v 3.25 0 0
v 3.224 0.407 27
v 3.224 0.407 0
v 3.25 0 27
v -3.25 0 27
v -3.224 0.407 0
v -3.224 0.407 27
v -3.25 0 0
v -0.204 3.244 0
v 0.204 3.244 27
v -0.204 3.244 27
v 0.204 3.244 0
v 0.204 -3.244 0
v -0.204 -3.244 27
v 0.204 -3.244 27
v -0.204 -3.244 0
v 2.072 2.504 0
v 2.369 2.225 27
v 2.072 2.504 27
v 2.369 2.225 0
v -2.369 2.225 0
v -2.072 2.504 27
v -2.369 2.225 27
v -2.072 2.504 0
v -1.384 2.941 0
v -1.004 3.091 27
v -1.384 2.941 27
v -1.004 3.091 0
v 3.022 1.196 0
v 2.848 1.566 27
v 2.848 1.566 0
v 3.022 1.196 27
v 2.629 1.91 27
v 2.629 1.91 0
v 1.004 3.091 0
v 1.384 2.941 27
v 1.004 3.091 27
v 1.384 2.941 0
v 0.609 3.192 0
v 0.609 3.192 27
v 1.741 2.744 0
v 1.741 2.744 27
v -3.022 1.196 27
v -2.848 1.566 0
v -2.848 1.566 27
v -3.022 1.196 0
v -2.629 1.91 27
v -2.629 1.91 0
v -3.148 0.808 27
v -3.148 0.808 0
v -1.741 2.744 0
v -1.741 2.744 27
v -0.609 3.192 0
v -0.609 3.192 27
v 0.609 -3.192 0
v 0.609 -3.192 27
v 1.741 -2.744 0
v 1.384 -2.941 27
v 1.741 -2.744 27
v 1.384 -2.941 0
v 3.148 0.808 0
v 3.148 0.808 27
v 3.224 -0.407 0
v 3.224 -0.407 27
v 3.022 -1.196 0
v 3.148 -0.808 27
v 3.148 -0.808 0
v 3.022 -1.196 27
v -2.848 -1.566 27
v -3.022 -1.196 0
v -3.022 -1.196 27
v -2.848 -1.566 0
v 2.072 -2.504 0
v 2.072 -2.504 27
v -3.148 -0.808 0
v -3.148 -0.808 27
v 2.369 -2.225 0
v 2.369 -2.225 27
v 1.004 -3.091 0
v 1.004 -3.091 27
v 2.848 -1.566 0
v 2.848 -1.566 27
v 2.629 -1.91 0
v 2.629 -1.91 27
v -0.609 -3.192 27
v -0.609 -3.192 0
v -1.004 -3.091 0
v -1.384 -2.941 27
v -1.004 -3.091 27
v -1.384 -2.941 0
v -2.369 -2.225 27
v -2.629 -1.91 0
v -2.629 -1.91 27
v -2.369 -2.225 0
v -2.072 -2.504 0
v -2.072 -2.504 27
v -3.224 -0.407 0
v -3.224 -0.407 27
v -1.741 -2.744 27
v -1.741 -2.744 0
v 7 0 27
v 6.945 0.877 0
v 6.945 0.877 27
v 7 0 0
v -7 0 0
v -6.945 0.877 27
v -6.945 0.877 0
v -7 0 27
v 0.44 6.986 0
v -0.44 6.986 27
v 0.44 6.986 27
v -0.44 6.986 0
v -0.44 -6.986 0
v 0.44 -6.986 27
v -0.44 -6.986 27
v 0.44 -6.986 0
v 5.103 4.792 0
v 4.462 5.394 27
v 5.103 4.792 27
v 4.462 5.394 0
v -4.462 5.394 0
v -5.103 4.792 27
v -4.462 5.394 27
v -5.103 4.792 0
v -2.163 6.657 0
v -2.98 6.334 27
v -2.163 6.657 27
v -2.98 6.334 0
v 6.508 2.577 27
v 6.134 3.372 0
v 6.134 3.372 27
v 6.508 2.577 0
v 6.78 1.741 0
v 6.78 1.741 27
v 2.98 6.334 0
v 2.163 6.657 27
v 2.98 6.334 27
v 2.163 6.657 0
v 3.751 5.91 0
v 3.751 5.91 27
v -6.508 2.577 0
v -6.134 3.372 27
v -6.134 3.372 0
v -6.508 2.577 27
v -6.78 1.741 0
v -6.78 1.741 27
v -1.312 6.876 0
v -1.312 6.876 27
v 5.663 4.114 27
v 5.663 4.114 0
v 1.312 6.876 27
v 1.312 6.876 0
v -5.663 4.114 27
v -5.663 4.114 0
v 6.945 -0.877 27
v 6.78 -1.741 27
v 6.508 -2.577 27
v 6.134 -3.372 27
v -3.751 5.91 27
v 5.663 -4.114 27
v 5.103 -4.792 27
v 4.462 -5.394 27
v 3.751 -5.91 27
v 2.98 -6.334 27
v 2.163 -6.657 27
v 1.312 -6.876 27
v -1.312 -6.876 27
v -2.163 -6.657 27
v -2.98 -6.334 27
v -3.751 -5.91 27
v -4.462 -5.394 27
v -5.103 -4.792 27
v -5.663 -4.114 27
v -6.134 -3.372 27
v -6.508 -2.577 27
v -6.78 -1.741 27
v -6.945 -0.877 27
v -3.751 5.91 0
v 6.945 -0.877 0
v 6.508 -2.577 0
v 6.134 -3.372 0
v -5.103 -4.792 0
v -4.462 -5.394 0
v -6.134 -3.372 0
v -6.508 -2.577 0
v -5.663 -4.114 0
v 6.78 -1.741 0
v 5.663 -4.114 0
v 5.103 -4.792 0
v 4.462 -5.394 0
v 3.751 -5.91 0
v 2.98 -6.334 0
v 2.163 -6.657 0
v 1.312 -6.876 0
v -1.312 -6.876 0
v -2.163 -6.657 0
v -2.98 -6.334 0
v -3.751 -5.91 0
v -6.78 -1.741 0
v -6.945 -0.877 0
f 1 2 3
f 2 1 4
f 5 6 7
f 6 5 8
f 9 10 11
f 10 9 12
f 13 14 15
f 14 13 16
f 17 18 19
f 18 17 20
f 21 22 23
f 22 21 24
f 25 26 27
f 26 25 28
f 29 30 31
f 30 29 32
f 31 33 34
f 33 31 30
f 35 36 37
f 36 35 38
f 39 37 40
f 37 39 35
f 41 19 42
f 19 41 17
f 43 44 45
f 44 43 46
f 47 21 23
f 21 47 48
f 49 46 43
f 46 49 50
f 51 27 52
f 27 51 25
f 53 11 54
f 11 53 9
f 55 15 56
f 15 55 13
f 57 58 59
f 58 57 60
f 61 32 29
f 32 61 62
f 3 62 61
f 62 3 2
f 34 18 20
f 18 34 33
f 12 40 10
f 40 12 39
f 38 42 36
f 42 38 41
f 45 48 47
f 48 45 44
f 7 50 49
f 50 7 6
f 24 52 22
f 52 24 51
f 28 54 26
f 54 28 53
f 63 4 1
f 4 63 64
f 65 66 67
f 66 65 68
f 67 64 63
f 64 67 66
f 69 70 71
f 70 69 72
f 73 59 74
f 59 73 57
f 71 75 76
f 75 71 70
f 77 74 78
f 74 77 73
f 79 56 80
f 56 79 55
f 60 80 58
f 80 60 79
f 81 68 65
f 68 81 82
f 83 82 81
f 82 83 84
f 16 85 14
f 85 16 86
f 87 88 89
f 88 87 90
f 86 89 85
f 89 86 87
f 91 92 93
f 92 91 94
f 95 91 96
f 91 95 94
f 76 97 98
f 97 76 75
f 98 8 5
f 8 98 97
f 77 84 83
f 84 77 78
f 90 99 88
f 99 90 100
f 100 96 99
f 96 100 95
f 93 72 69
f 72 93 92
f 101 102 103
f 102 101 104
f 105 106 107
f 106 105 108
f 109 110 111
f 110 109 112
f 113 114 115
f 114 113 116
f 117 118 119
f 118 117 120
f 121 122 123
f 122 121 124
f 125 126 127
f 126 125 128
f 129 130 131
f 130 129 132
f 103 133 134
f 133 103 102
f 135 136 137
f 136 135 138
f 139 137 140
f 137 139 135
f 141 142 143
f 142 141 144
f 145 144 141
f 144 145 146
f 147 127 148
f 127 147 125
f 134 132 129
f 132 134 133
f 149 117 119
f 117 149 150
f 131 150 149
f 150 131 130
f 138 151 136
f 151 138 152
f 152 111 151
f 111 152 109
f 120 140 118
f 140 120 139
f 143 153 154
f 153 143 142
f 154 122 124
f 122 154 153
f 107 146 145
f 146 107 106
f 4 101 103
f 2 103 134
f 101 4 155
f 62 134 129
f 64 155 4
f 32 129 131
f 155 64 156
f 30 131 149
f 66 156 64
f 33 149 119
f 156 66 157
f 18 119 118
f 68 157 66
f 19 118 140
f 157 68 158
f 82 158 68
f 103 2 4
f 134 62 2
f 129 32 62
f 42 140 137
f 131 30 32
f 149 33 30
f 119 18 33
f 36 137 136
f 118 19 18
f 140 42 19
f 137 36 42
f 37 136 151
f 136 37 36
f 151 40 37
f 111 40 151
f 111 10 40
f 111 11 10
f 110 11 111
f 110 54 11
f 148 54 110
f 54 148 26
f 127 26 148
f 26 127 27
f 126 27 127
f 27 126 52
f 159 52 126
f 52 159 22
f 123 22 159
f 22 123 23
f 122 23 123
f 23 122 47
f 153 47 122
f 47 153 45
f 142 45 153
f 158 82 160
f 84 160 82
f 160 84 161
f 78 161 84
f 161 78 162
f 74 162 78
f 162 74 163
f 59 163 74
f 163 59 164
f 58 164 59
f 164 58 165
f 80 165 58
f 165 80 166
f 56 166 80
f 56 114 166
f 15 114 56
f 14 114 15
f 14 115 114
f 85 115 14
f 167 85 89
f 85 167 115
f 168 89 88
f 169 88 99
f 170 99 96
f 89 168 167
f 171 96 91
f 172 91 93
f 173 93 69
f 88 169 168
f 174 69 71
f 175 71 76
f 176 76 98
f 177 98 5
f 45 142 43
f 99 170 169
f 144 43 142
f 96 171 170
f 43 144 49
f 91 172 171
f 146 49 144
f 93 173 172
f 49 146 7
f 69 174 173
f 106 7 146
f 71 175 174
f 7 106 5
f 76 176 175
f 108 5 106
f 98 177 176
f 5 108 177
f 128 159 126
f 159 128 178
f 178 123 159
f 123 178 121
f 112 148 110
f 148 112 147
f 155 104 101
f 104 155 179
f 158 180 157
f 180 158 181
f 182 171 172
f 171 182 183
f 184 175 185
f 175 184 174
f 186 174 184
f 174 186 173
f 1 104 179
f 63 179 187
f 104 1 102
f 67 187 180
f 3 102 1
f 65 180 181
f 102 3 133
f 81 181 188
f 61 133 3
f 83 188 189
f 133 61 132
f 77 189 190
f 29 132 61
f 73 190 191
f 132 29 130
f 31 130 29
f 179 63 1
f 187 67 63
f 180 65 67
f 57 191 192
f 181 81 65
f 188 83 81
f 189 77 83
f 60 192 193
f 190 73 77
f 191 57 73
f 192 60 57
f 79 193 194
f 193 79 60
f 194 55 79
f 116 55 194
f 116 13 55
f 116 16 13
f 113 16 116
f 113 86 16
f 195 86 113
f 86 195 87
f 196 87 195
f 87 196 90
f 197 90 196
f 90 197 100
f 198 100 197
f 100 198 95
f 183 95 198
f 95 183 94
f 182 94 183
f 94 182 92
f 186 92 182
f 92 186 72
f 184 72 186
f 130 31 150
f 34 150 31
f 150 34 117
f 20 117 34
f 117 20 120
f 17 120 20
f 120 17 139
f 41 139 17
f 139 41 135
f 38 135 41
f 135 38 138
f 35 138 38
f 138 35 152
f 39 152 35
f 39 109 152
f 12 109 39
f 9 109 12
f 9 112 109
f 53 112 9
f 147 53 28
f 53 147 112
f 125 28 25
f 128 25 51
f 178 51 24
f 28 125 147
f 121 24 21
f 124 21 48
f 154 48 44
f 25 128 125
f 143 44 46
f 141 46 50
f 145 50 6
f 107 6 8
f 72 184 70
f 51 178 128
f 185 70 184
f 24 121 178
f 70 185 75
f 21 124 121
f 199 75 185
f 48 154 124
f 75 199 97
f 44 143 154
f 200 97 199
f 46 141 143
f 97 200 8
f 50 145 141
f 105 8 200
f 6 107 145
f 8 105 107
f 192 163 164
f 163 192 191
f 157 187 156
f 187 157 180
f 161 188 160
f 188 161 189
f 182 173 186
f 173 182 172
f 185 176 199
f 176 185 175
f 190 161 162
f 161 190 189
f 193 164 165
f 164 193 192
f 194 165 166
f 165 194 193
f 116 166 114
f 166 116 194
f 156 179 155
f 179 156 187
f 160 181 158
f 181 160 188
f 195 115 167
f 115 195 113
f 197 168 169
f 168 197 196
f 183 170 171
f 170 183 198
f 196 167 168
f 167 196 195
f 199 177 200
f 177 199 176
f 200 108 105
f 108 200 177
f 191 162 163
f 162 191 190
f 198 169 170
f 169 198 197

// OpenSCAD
$fn = 50;


difference() {
	union() {
		cylinder(h = 27, r = 7.0000000000);
	}
	union() {
		translate(v = [0.0000000000, 0.0000000000, -100.0000000000]) {
			cylinder(h = 200, r = 3.2500000000);
		}
		translate(v = [0.0000000000, 0.0000000000, -100.0000000000]) {
			cylinder(h = 200, r = 3.2500000000);
		}
		translate(v = [0.0000000000, 0.0000000000, -100.0000000000]) {
			cylinder(h = 200, r = 3.2500000000);
		}
		translate(v = [0.0000000000, 0.0000000000, -100.0000000000]) {
			cylinder(h = 200, r = 3.2500000000);
		}
	}
}
